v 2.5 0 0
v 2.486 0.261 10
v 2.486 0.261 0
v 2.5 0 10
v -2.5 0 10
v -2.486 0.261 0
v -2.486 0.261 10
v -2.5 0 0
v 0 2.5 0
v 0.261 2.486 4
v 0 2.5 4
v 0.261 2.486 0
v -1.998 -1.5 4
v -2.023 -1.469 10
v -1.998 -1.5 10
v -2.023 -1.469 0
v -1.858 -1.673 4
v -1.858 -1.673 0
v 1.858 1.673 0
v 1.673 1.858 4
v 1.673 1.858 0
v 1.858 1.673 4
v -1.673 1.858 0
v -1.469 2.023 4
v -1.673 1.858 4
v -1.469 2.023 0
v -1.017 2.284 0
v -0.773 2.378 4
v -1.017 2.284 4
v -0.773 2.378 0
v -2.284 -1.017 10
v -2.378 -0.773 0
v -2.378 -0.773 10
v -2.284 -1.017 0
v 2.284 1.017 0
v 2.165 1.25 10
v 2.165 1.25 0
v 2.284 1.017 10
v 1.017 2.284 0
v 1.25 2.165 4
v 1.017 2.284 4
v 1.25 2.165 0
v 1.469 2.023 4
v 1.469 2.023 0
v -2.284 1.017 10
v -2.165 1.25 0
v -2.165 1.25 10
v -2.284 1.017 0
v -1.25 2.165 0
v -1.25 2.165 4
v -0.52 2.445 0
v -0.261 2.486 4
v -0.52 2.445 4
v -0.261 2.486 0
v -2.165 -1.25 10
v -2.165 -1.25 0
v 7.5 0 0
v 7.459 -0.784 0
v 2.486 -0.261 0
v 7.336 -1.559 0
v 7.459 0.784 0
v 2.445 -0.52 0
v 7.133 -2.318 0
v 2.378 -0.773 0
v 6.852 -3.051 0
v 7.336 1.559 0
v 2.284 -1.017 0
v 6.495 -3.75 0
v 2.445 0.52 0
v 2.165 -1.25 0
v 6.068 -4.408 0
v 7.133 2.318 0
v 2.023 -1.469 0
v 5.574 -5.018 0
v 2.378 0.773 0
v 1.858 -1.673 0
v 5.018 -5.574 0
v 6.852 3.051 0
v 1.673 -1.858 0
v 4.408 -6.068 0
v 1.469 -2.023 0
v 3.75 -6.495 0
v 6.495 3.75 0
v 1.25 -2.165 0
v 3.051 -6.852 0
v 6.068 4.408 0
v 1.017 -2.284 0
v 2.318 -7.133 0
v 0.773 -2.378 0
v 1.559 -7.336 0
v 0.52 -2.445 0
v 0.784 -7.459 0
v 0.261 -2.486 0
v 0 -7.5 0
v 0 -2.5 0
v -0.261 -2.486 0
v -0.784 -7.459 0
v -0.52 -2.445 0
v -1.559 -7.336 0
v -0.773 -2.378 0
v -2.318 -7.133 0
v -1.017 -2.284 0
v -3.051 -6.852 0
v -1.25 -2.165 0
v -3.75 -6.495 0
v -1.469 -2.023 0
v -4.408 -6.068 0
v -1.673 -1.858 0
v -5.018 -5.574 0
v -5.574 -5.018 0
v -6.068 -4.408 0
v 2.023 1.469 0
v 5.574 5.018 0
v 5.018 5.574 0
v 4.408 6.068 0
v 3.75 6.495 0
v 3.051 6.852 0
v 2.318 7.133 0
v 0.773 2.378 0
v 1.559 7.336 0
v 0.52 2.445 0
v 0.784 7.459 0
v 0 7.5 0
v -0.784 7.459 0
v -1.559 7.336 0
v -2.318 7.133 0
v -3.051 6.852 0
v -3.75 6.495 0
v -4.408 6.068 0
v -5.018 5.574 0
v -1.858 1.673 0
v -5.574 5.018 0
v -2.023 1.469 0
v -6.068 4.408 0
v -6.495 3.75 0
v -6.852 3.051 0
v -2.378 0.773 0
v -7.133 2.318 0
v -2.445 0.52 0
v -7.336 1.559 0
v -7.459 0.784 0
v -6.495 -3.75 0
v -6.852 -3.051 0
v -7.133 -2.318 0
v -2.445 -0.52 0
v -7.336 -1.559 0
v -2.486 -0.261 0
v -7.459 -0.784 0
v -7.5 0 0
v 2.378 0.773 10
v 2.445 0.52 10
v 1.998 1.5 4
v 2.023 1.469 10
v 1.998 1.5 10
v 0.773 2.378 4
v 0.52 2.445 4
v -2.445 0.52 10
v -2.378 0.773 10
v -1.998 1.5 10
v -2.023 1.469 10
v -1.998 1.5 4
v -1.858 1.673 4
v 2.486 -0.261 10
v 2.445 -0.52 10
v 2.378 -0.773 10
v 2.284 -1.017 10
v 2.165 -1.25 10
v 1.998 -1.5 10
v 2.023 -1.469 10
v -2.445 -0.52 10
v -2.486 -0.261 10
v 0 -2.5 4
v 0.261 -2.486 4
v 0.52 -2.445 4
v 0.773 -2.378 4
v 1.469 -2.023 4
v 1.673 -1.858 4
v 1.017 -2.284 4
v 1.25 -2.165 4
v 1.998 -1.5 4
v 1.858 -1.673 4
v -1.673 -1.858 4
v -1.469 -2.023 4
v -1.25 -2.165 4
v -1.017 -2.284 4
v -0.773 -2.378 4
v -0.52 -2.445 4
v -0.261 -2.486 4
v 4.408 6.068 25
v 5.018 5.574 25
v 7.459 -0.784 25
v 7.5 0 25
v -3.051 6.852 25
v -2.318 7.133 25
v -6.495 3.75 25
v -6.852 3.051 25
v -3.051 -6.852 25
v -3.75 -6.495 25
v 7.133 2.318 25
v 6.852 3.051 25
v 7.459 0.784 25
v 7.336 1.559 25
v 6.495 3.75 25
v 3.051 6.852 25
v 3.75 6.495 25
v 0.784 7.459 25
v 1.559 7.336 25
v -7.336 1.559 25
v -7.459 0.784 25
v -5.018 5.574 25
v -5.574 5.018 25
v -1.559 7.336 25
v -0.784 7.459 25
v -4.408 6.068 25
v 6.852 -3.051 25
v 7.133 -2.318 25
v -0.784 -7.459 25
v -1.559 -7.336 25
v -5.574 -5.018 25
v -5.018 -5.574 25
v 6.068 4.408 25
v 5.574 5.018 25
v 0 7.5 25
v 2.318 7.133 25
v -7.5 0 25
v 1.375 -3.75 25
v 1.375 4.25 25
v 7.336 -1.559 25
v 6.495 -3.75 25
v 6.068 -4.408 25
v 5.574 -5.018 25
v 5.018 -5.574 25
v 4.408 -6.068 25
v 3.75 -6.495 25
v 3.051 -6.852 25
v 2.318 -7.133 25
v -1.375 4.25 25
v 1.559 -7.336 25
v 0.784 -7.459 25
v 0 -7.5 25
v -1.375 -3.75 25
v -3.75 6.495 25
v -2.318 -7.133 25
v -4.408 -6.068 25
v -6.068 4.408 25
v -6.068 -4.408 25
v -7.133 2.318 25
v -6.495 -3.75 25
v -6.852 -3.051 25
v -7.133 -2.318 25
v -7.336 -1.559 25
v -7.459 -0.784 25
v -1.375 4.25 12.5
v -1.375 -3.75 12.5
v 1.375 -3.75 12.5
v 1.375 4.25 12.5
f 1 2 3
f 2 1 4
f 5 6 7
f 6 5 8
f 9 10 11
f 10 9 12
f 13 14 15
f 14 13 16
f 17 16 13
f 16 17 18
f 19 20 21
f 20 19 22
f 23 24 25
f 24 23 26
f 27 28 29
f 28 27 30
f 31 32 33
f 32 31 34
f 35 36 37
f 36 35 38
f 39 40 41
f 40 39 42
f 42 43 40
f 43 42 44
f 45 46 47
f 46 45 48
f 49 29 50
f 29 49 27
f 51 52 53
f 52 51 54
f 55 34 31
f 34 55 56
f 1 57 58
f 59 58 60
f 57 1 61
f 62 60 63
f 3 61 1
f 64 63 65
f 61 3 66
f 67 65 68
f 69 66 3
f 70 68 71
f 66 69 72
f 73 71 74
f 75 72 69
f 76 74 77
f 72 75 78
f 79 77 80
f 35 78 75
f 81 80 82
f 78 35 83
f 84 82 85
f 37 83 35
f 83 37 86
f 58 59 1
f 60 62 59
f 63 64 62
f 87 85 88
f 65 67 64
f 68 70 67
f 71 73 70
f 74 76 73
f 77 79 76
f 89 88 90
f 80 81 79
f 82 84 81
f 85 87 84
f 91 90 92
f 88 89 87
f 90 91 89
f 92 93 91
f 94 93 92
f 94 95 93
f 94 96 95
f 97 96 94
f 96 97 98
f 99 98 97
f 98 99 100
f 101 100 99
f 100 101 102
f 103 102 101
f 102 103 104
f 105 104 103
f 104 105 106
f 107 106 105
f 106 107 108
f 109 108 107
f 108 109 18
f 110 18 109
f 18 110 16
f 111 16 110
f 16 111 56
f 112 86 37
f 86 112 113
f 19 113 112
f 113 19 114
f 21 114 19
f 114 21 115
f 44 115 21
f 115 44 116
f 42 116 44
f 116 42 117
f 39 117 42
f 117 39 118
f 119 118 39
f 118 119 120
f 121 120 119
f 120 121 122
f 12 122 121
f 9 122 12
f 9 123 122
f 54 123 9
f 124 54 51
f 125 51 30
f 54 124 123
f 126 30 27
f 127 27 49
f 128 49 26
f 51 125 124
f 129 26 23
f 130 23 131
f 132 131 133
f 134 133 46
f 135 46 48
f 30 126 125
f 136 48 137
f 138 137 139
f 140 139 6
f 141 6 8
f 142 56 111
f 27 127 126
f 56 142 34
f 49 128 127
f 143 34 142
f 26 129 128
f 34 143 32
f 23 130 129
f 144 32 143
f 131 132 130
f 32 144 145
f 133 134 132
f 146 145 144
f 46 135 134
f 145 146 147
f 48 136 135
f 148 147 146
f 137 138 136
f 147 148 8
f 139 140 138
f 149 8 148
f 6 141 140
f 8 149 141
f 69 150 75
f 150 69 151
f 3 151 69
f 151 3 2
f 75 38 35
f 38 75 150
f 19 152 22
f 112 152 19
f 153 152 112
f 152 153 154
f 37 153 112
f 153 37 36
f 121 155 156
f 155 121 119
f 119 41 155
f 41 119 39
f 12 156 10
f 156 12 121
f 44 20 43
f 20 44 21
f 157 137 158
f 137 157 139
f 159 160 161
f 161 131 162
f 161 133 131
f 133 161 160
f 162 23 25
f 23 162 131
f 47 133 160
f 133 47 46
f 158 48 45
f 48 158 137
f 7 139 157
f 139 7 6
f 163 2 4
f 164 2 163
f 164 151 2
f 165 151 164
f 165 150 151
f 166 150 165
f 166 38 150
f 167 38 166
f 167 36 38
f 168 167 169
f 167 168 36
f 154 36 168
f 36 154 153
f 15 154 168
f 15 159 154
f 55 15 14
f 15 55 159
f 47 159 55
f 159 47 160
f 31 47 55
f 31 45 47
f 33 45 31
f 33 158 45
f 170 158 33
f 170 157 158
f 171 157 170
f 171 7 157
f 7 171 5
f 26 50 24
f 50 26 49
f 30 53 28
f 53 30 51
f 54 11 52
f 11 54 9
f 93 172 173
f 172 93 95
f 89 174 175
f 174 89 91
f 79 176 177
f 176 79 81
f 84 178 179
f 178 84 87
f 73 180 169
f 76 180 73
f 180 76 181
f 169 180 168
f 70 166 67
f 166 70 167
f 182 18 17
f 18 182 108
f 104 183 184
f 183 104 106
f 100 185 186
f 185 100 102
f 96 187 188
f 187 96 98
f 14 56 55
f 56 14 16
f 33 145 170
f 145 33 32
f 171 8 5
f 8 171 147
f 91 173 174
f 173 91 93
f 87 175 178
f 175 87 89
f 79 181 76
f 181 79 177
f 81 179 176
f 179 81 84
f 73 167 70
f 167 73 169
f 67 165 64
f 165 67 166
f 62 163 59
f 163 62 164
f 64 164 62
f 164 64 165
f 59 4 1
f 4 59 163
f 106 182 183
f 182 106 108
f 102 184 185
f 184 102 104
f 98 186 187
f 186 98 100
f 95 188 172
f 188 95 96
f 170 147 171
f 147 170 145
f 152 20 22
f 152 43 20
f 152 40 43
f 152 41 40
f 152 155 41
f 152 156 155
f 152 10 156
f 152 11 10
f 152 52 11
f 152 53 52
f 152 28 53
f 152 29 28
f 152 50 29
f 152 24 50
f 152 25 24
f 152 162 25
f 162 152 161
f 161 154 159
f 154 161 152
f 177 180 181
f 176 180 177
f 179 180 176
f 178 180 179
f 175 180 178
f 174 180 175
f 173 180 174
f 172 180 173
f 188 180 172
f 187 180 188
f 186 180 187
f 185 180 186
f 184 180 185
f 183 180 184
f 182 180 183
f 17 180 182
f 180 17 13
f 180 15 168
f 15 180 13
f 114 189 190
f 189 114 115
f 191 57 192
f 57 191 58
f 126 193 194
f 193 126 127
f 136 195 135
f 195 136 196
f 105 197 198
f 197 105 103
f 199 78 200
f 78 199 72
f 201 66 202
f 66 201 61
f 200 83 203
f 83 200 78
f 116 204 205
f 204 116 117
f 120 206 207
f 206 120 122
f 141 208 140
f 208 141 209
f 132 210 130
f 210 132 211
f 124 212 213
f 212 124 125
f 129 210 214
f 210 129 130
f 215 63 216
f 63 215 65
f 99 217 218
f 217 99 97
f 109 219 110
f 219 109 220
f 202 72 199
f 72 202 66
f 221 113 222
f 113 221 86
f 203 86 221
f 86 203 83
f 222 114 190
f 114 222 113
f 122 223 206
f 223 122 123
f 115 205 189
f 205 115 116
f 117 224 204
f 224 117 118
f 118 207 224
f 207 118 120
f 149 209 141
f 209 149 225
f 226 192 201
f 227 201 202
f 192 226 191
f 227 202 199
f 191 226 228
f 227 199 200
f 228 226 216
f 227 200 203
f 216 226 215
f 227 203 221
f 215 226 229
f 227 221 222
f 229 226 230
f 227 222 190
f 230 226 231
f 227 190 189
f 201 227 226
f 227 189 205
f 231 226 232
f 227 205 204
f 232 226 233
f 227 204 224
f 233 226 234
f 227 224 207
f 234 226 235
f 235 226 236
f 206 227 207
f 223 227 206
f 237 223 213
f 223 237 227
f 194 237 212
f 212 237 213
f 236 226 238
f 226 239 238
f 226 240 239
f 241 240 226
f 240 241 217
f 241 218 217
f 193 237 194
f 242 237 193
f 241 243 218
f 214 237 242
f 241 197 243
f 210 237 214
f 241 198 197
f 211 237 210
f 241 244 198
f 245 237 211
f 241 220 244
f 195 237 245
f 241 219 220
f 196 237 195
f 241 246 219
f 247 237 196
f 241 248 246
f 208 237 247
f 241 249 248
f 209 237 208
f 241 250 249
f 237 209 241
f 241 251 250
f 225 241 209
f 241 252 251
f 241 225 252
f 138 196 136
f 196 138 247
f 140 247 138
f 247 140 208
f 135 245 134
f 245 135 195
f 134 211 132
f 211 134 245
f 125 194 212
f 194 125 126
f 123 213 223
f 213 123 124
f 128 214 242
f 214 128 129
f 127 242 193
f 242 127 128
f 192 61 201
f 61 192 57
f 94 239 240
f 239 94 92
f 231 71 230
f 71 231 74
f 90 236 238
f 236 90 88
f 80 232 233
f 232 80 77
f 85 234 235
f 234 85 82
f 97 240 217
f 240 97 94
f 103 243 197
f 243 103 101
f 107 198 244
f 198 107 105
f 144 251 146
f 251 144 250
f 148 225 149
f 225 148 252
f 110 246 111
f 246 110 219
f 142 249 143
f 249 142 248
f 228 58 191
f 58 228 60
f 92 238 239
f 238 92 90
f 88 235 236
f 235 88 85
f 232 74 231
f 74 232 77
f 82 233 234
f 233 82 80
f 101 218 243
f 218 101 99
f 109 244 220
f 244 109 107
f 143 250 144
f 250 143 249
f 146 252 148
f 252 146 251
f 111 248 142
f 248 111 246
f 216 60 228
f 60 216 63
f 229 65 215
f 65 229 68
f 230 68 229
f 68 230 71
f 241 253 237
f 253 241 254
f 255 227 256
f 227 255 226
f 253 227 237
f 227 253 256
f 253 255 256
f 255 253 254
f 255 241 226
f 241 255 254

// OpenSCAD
// file: ../modules/shaft.scad
28byj48_shaft_collar_radius = 9/2;
28byj48_shaft_collar_height = 1.5;

28byj48_shaft_radius = 5/2;
28byj48_shaft_height = 10;
28byj48_shaft_slotted_width = 3;
28byj48_shaft_slotted_height = 6;

eps = 0.01;
$fn = 60;

module shaft() {
    difference() {
        cylinder(r=28byj48_shaft_radius, h=28byj48_shaft_height);
        translate([-(28byj48_shaft_radius + eps), 28byj48_shaft_slotted_width / 2, 28byj48_shaft_height - 28byj48_shaft_slotted_height]) {
            cube([(28byj48_shaft_radius+eps)*2, 28byj48_shaft_radius, 28byj48_shaft_slotted_height+eps]);
        }
        translate([-(28byj48_shaft_radius + eps), - 28byj48_shaft_radius - (28byj48_shaft_slotted_width / 2), 28byj48_shaft_height - 28byj48_shaft_slotted_height]) {
            cube([(28byj48_shaft_radius+eps)*2, 28byj48_shaft_radius, 28byj48_shaft_slotted_height+eps]);
        }
    }
}

shaft();
// main file
use <../modules/shaft.scad>

$fn = 60;

adapterHeight = 25;
adapterRadius = 7.5;

hookWidth = 2.75;
hookDepth = 8;
hookHeight = adapterHeight / 2;

divider = 2;

module hook() {
    cube([hookWidth, hookDepth, hookHeight]);
}

difference() {
    cylinder(h = adapterHeight, r = adapterRadius);
    shaft();
    
    translate([-(hookWidth / 2), -(adapterRadius / 2), adapterHeight / 2]) {
        hook();
    }
}
